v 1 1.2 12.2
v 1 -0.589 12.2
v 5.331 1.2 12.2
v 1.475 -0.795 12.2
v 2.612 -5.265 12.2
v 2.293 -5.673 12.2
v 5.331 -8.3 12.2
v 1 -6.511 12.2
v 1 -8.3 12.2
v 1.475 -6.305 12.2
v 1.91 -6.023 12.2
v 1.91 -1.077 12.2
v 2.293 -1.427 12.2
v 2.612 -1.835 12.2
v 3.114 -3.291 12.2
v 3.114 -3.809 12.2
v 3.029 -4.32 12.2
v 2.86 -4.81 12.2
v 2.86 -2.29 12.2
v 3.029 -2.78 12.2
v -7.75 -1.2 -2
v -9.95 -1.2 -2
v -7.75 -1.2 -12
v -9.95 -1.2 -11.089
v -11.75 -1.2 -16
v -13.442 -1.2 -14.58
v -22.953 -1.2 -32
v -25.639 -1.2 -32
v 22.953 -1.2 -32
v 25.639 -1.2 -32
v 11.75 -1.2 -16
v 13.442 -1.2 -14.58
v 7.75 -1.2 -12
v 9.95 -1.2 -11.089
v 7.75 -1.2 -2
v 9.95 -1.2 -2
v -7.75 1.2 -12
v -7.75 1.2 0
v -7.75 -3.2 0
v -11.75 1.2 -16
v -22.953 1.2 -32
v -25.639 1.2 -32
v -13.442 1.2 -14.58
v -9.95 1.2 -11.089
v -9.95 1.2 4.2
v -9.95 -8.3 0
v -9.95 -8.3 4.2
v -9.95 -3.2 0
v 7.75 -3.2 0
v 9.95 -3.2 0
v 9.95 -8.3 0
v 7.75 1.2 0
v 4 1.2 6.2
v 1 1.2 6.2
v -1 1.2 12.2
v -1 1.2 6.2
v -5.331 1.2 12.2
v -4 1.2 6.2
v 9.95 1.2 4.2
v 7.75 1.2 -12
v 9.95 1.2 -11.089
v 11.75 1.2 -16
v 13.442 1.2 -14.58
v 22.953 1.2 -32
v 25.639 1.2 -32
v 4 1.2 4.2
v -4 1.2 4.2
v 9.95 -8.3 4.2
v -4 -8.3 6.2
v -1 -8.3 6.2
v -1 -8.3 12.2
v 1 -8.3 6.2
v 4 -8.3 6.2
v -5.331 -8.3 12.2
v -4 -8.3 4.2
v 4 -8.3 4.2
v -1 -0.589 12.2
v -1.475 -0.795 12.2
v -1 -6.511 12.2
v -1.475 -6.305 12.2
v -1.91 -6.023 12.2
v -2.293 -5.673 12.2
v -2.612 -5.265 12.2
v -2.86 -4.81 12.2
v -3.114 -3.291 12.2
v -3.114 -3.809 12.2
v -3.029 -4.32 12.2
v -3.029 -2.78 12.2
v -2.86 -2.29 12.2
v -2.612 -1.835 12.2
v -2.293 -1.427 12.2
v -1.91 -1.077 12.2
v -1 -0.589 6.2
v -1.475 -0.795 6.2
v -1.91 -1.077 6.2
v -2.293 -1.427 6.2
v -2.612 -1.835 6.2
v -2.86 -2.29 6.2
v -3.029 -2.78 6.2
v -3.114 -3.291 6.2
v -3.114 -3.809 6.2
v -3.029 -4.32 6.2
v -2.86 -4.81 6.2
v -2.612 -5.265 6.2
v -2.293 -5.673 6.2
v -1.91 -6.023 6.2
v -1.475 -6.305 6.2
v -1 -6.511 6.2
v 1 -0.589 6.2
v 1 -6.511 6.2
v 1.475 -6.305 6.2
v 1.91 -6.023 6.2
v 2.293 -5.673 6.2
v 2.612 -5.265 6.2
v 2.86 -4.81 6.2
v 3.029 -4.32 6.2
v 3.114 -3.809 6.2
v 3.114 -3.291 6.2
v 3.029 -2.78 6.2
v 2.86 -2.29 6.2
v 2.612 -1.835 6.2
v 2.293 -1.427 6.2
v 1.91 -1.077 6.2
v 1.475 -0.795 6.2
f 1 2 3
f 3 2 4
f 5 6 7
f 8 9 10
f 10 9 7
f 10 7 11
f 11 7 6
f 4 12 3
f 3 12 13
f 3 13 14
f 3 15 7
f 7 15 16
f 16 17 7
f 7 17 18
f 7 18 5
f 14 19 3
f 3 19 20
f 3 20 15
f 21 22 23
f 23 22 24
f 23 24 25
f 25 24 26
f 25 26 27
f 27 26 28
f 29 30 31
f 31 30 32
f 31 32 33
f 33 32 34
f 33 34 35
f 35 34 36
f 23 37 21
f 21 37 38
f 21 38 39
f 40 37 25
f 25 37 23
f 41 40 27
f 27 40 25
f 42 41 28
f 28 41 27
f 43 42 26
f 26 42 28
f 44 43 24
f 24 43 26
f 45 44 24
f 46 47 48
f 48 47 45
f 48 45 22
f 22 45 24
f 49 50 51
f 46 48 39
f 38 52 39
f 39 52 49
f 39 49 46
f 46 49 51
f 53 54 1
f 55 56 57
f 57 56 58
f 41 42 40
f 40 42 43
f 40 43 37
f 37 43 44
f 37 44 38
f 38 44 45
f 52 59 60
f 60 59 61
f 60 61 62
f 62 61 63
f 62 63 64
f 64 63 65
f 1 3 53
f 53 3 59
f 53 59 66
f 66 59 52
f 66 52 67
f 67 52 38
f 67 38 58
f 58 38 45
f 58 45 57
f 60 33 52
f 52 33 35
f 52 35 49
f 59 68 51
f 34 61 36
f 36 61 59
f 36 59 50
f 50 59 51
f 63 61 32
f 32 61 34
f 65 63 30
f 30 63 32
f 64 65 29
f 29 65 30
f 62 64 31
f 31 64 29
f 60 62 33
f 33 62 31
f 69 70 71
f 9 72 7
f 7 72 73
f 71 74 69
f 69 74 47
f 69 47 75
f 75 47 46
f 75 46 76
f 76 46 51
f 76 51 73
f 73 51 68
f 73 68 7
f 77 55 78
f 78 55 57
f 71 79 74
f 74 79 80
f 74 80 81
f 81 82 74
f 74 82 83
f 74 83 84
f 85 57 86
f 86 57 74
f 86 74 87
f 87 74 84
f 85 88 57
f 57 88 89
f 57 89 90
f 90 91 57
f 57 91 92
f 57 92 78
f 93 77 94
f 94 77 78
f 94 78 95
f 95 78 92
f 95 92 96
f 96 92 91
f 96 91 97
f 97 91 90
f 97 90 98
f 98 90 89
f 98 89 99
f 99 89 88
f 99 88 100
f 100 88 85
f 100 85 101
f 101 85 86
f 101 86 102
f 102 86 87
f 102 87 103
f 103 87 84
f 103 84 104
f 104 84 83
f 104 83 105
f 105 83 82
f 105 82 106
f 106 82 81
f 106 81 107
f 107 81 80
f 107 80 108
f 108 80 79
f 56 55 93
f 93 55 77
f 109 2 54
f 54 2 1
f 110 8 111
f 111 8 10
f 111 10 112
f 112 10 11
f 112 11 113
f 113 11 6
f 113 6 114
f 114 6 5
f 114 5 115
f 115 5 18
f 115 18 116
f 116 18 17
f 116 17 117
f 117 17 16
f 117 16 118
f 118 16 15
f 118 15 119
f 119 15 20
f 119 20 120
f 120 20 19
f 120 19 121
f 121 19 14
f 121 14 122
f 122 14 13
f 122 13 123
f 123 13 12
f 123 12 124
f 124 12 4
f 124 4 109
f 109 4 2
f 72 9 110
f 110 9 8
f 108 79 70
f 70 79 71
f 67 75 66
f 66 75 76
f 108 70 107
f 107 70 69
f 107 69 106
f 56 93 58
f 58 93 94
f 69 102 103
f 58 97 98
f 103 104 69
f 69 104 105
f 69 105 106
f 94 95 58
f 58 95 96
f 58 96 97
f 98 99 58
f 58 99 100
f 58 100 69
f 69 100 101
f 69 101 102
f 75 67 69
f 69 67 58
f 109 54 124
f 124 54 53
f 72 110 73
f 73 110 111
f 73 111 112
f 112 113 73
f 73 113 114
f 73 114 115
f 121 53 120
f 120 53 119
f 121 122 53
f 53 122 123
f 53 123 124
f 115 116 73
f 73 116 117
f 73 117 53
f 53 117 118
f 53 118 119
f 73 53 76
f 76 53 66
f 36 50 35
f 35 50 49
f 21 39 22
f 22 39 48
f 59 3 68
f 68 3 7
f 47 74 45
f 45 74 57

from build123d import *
from OCP.BRepFilletAPI import BRepFilletAPI_MakeChamfer

# Parameters (mm, degrees)
BOSS_EXTRUDE1_DEPTH      = 1.2
BOSS_EXTRUDE2_DEPTH      = 10
BOSS_EXTRUDE2_DEPTH_BACK = 2.2
SKETCH2_W                = 19.9
SKETCH2_H                = 9.5
CUT_EXTRUDE1_DEPTH       = 8
CUT_EXTRUDE2_DEPTH       = 42.835984366
CUT_EXTRUDE2_DEPTH_BACK  = 42.835984366
SKETCH4_W                = 8
SKETCH4_H                = 2
CHAMFER1_SIZE            = 2
CHAMFER2_SIZE            = 8
CHAMFER2_SIZE2           = 4.618802154


with BuildPart() as part:
    # Sketch1 → Boss-Extrude1 (new, symmetric)
    with BuildSketch(Plane(origin=(0, 0, 0), x_dir=(1, 0, 0), z_dir=(0, 1, 0))):
        Polygon((-7.75, 0), (0, 0), (0, -2.2), (-9.95, -2.2), (-9.95, 11.088730163), (-13.441735339, 14.580465501), (-25.639024707, 32), (-22.953320611, 32), (-11.75, 16), (-7.75, 12), align=None)
    boss_extrude1 = extrude(amount=BOSS_EXTRUDE1_DEPTH, both=True)

    # Mirror1: Boss-Extrude1 across plane
    add(boss_extrude1.mirror(Plane(origin=(0, 1.2, 0), x_dir=(0, 0, 1), z_dir=(-1, 0, 0))))

    # Sketch2 → Boss-Extrude2 (add, two sides: drawn at the far end of the back side and taken through both)
    with BuildSketch(Plane.XY.offset(2.2).offset(-BOSS_EXTRUDE2_DEPTH_BACK)):
        with Locations((0, -3.55)):
            Rectangle(SKETCH2_W, SKETCH2_H)
    extrude(amount=BOSS_EXTRUDE2_DEPTH + BOSS_EXTRUDE2_DEPTH_BACK)

    # Sketch3 → Cut-Extrude1 (cut)
    with BuildSketch(Plane.XY.offset(12.2)):
        with BuildLine():
            Line((-1, -0.562944594), (-1, 1.2))
            Line((-1, 1.2), (1, 1.2))
            Line((1, 1.2), (1, -0.562944594))
            ThreePointArc((1, -0.562944594), (3.15, -3.55), (1, -6.537055406))
            Line((1, -6.537055406), (1, -8.3))
            Line((1, -8.3), (-1, -8.3))
            Line((-1, -8.3), (-1, -6.537055406))
            ThreePointArc((-1, -6.537055406), (-3.15, -3.55), (-1, -0.562944594))
        make_face()
    extrude(amount=-CUT_EXTRUDE1_DEPTH, mode=Mode.SUBTRACT)

    # Sketch4 → Cut-Extrude2 (cut, two sides: drawn at the far end of the back side and taken through both)
    with BuildSketch(Plane(origin=(0, 0, 0), x_dir=(1, 0, 0), z_dir=(0, 1, 0)).offset(-CUT_EXTRUDE2_DEPTH_BACK)):
        with Locations((0, -5.2)):
            Rectangle(SKETCH4_W, SKETCH4_H)
    extrude(amount=CUT_EXTRUDE2_DEPTH + CUT_EXTRUDE2_DEPTH_BACK, mode=Mode.SUBTRACT)

    # Chamfer1
    chamfer1_edges = [part.edges().sort_by_distance(p)[0] for p in [
        (-8.85, -1.2, 0),
        (8.85, -1.2, 0),
    ]]
    chamfer(chamfer1_edges, length=CHAMFER1_SIZE)

    # Chamfer2: one chamfer whose edges measure the first distance from different faces: ONE call of the kernel's chamfer builder (chamfer() names one face for all edges)
    chamfer2_edges_1 = [part.edges().sort_by_distance(p)[0] for p in [
        (-9.95, -3.55, 12.2),
    ]]
    chamfer2_side_1 = [part.faces().sort_by_distance(p)[0] for p in [
        (-9.95, -2.87294894, 3.861970387),
    ]]
    chamfer2_edges_2 = [part.edges().sort_by_distance(p)[0] for p in [
        (9.95, -3.55, 12.2),
    ]]
    chamfer2_side_2 = [part.faces().sort_by_distance(p)[0] for p in [
        (9.95, -2.87294894, 3.861970387),
    ]]
    chamfer2 = BRepFilletAPI_MakeChamfer(part.part.solid().wrapped)
    for e in chamfer2_edges_1:
        chamfer2.Add(CHAMFER2_SIZE, CHAMFER2_SIZE2, e.wrapped, chamfer2_side_1[0].wrapped)  # the first distance lies on this face
    for e in chamfer2_edges_2:
        chamfer2.Add(CHAMFER2_SIZE, CHAMFER2_SIZE2, e.wrapped, chamfer2_side_2[0].wrapped)  # the first distance lies on this face
    add(Compound.cast(chamfer2.Shape()), mode=Mode.REPLACE)


solid = part.part
